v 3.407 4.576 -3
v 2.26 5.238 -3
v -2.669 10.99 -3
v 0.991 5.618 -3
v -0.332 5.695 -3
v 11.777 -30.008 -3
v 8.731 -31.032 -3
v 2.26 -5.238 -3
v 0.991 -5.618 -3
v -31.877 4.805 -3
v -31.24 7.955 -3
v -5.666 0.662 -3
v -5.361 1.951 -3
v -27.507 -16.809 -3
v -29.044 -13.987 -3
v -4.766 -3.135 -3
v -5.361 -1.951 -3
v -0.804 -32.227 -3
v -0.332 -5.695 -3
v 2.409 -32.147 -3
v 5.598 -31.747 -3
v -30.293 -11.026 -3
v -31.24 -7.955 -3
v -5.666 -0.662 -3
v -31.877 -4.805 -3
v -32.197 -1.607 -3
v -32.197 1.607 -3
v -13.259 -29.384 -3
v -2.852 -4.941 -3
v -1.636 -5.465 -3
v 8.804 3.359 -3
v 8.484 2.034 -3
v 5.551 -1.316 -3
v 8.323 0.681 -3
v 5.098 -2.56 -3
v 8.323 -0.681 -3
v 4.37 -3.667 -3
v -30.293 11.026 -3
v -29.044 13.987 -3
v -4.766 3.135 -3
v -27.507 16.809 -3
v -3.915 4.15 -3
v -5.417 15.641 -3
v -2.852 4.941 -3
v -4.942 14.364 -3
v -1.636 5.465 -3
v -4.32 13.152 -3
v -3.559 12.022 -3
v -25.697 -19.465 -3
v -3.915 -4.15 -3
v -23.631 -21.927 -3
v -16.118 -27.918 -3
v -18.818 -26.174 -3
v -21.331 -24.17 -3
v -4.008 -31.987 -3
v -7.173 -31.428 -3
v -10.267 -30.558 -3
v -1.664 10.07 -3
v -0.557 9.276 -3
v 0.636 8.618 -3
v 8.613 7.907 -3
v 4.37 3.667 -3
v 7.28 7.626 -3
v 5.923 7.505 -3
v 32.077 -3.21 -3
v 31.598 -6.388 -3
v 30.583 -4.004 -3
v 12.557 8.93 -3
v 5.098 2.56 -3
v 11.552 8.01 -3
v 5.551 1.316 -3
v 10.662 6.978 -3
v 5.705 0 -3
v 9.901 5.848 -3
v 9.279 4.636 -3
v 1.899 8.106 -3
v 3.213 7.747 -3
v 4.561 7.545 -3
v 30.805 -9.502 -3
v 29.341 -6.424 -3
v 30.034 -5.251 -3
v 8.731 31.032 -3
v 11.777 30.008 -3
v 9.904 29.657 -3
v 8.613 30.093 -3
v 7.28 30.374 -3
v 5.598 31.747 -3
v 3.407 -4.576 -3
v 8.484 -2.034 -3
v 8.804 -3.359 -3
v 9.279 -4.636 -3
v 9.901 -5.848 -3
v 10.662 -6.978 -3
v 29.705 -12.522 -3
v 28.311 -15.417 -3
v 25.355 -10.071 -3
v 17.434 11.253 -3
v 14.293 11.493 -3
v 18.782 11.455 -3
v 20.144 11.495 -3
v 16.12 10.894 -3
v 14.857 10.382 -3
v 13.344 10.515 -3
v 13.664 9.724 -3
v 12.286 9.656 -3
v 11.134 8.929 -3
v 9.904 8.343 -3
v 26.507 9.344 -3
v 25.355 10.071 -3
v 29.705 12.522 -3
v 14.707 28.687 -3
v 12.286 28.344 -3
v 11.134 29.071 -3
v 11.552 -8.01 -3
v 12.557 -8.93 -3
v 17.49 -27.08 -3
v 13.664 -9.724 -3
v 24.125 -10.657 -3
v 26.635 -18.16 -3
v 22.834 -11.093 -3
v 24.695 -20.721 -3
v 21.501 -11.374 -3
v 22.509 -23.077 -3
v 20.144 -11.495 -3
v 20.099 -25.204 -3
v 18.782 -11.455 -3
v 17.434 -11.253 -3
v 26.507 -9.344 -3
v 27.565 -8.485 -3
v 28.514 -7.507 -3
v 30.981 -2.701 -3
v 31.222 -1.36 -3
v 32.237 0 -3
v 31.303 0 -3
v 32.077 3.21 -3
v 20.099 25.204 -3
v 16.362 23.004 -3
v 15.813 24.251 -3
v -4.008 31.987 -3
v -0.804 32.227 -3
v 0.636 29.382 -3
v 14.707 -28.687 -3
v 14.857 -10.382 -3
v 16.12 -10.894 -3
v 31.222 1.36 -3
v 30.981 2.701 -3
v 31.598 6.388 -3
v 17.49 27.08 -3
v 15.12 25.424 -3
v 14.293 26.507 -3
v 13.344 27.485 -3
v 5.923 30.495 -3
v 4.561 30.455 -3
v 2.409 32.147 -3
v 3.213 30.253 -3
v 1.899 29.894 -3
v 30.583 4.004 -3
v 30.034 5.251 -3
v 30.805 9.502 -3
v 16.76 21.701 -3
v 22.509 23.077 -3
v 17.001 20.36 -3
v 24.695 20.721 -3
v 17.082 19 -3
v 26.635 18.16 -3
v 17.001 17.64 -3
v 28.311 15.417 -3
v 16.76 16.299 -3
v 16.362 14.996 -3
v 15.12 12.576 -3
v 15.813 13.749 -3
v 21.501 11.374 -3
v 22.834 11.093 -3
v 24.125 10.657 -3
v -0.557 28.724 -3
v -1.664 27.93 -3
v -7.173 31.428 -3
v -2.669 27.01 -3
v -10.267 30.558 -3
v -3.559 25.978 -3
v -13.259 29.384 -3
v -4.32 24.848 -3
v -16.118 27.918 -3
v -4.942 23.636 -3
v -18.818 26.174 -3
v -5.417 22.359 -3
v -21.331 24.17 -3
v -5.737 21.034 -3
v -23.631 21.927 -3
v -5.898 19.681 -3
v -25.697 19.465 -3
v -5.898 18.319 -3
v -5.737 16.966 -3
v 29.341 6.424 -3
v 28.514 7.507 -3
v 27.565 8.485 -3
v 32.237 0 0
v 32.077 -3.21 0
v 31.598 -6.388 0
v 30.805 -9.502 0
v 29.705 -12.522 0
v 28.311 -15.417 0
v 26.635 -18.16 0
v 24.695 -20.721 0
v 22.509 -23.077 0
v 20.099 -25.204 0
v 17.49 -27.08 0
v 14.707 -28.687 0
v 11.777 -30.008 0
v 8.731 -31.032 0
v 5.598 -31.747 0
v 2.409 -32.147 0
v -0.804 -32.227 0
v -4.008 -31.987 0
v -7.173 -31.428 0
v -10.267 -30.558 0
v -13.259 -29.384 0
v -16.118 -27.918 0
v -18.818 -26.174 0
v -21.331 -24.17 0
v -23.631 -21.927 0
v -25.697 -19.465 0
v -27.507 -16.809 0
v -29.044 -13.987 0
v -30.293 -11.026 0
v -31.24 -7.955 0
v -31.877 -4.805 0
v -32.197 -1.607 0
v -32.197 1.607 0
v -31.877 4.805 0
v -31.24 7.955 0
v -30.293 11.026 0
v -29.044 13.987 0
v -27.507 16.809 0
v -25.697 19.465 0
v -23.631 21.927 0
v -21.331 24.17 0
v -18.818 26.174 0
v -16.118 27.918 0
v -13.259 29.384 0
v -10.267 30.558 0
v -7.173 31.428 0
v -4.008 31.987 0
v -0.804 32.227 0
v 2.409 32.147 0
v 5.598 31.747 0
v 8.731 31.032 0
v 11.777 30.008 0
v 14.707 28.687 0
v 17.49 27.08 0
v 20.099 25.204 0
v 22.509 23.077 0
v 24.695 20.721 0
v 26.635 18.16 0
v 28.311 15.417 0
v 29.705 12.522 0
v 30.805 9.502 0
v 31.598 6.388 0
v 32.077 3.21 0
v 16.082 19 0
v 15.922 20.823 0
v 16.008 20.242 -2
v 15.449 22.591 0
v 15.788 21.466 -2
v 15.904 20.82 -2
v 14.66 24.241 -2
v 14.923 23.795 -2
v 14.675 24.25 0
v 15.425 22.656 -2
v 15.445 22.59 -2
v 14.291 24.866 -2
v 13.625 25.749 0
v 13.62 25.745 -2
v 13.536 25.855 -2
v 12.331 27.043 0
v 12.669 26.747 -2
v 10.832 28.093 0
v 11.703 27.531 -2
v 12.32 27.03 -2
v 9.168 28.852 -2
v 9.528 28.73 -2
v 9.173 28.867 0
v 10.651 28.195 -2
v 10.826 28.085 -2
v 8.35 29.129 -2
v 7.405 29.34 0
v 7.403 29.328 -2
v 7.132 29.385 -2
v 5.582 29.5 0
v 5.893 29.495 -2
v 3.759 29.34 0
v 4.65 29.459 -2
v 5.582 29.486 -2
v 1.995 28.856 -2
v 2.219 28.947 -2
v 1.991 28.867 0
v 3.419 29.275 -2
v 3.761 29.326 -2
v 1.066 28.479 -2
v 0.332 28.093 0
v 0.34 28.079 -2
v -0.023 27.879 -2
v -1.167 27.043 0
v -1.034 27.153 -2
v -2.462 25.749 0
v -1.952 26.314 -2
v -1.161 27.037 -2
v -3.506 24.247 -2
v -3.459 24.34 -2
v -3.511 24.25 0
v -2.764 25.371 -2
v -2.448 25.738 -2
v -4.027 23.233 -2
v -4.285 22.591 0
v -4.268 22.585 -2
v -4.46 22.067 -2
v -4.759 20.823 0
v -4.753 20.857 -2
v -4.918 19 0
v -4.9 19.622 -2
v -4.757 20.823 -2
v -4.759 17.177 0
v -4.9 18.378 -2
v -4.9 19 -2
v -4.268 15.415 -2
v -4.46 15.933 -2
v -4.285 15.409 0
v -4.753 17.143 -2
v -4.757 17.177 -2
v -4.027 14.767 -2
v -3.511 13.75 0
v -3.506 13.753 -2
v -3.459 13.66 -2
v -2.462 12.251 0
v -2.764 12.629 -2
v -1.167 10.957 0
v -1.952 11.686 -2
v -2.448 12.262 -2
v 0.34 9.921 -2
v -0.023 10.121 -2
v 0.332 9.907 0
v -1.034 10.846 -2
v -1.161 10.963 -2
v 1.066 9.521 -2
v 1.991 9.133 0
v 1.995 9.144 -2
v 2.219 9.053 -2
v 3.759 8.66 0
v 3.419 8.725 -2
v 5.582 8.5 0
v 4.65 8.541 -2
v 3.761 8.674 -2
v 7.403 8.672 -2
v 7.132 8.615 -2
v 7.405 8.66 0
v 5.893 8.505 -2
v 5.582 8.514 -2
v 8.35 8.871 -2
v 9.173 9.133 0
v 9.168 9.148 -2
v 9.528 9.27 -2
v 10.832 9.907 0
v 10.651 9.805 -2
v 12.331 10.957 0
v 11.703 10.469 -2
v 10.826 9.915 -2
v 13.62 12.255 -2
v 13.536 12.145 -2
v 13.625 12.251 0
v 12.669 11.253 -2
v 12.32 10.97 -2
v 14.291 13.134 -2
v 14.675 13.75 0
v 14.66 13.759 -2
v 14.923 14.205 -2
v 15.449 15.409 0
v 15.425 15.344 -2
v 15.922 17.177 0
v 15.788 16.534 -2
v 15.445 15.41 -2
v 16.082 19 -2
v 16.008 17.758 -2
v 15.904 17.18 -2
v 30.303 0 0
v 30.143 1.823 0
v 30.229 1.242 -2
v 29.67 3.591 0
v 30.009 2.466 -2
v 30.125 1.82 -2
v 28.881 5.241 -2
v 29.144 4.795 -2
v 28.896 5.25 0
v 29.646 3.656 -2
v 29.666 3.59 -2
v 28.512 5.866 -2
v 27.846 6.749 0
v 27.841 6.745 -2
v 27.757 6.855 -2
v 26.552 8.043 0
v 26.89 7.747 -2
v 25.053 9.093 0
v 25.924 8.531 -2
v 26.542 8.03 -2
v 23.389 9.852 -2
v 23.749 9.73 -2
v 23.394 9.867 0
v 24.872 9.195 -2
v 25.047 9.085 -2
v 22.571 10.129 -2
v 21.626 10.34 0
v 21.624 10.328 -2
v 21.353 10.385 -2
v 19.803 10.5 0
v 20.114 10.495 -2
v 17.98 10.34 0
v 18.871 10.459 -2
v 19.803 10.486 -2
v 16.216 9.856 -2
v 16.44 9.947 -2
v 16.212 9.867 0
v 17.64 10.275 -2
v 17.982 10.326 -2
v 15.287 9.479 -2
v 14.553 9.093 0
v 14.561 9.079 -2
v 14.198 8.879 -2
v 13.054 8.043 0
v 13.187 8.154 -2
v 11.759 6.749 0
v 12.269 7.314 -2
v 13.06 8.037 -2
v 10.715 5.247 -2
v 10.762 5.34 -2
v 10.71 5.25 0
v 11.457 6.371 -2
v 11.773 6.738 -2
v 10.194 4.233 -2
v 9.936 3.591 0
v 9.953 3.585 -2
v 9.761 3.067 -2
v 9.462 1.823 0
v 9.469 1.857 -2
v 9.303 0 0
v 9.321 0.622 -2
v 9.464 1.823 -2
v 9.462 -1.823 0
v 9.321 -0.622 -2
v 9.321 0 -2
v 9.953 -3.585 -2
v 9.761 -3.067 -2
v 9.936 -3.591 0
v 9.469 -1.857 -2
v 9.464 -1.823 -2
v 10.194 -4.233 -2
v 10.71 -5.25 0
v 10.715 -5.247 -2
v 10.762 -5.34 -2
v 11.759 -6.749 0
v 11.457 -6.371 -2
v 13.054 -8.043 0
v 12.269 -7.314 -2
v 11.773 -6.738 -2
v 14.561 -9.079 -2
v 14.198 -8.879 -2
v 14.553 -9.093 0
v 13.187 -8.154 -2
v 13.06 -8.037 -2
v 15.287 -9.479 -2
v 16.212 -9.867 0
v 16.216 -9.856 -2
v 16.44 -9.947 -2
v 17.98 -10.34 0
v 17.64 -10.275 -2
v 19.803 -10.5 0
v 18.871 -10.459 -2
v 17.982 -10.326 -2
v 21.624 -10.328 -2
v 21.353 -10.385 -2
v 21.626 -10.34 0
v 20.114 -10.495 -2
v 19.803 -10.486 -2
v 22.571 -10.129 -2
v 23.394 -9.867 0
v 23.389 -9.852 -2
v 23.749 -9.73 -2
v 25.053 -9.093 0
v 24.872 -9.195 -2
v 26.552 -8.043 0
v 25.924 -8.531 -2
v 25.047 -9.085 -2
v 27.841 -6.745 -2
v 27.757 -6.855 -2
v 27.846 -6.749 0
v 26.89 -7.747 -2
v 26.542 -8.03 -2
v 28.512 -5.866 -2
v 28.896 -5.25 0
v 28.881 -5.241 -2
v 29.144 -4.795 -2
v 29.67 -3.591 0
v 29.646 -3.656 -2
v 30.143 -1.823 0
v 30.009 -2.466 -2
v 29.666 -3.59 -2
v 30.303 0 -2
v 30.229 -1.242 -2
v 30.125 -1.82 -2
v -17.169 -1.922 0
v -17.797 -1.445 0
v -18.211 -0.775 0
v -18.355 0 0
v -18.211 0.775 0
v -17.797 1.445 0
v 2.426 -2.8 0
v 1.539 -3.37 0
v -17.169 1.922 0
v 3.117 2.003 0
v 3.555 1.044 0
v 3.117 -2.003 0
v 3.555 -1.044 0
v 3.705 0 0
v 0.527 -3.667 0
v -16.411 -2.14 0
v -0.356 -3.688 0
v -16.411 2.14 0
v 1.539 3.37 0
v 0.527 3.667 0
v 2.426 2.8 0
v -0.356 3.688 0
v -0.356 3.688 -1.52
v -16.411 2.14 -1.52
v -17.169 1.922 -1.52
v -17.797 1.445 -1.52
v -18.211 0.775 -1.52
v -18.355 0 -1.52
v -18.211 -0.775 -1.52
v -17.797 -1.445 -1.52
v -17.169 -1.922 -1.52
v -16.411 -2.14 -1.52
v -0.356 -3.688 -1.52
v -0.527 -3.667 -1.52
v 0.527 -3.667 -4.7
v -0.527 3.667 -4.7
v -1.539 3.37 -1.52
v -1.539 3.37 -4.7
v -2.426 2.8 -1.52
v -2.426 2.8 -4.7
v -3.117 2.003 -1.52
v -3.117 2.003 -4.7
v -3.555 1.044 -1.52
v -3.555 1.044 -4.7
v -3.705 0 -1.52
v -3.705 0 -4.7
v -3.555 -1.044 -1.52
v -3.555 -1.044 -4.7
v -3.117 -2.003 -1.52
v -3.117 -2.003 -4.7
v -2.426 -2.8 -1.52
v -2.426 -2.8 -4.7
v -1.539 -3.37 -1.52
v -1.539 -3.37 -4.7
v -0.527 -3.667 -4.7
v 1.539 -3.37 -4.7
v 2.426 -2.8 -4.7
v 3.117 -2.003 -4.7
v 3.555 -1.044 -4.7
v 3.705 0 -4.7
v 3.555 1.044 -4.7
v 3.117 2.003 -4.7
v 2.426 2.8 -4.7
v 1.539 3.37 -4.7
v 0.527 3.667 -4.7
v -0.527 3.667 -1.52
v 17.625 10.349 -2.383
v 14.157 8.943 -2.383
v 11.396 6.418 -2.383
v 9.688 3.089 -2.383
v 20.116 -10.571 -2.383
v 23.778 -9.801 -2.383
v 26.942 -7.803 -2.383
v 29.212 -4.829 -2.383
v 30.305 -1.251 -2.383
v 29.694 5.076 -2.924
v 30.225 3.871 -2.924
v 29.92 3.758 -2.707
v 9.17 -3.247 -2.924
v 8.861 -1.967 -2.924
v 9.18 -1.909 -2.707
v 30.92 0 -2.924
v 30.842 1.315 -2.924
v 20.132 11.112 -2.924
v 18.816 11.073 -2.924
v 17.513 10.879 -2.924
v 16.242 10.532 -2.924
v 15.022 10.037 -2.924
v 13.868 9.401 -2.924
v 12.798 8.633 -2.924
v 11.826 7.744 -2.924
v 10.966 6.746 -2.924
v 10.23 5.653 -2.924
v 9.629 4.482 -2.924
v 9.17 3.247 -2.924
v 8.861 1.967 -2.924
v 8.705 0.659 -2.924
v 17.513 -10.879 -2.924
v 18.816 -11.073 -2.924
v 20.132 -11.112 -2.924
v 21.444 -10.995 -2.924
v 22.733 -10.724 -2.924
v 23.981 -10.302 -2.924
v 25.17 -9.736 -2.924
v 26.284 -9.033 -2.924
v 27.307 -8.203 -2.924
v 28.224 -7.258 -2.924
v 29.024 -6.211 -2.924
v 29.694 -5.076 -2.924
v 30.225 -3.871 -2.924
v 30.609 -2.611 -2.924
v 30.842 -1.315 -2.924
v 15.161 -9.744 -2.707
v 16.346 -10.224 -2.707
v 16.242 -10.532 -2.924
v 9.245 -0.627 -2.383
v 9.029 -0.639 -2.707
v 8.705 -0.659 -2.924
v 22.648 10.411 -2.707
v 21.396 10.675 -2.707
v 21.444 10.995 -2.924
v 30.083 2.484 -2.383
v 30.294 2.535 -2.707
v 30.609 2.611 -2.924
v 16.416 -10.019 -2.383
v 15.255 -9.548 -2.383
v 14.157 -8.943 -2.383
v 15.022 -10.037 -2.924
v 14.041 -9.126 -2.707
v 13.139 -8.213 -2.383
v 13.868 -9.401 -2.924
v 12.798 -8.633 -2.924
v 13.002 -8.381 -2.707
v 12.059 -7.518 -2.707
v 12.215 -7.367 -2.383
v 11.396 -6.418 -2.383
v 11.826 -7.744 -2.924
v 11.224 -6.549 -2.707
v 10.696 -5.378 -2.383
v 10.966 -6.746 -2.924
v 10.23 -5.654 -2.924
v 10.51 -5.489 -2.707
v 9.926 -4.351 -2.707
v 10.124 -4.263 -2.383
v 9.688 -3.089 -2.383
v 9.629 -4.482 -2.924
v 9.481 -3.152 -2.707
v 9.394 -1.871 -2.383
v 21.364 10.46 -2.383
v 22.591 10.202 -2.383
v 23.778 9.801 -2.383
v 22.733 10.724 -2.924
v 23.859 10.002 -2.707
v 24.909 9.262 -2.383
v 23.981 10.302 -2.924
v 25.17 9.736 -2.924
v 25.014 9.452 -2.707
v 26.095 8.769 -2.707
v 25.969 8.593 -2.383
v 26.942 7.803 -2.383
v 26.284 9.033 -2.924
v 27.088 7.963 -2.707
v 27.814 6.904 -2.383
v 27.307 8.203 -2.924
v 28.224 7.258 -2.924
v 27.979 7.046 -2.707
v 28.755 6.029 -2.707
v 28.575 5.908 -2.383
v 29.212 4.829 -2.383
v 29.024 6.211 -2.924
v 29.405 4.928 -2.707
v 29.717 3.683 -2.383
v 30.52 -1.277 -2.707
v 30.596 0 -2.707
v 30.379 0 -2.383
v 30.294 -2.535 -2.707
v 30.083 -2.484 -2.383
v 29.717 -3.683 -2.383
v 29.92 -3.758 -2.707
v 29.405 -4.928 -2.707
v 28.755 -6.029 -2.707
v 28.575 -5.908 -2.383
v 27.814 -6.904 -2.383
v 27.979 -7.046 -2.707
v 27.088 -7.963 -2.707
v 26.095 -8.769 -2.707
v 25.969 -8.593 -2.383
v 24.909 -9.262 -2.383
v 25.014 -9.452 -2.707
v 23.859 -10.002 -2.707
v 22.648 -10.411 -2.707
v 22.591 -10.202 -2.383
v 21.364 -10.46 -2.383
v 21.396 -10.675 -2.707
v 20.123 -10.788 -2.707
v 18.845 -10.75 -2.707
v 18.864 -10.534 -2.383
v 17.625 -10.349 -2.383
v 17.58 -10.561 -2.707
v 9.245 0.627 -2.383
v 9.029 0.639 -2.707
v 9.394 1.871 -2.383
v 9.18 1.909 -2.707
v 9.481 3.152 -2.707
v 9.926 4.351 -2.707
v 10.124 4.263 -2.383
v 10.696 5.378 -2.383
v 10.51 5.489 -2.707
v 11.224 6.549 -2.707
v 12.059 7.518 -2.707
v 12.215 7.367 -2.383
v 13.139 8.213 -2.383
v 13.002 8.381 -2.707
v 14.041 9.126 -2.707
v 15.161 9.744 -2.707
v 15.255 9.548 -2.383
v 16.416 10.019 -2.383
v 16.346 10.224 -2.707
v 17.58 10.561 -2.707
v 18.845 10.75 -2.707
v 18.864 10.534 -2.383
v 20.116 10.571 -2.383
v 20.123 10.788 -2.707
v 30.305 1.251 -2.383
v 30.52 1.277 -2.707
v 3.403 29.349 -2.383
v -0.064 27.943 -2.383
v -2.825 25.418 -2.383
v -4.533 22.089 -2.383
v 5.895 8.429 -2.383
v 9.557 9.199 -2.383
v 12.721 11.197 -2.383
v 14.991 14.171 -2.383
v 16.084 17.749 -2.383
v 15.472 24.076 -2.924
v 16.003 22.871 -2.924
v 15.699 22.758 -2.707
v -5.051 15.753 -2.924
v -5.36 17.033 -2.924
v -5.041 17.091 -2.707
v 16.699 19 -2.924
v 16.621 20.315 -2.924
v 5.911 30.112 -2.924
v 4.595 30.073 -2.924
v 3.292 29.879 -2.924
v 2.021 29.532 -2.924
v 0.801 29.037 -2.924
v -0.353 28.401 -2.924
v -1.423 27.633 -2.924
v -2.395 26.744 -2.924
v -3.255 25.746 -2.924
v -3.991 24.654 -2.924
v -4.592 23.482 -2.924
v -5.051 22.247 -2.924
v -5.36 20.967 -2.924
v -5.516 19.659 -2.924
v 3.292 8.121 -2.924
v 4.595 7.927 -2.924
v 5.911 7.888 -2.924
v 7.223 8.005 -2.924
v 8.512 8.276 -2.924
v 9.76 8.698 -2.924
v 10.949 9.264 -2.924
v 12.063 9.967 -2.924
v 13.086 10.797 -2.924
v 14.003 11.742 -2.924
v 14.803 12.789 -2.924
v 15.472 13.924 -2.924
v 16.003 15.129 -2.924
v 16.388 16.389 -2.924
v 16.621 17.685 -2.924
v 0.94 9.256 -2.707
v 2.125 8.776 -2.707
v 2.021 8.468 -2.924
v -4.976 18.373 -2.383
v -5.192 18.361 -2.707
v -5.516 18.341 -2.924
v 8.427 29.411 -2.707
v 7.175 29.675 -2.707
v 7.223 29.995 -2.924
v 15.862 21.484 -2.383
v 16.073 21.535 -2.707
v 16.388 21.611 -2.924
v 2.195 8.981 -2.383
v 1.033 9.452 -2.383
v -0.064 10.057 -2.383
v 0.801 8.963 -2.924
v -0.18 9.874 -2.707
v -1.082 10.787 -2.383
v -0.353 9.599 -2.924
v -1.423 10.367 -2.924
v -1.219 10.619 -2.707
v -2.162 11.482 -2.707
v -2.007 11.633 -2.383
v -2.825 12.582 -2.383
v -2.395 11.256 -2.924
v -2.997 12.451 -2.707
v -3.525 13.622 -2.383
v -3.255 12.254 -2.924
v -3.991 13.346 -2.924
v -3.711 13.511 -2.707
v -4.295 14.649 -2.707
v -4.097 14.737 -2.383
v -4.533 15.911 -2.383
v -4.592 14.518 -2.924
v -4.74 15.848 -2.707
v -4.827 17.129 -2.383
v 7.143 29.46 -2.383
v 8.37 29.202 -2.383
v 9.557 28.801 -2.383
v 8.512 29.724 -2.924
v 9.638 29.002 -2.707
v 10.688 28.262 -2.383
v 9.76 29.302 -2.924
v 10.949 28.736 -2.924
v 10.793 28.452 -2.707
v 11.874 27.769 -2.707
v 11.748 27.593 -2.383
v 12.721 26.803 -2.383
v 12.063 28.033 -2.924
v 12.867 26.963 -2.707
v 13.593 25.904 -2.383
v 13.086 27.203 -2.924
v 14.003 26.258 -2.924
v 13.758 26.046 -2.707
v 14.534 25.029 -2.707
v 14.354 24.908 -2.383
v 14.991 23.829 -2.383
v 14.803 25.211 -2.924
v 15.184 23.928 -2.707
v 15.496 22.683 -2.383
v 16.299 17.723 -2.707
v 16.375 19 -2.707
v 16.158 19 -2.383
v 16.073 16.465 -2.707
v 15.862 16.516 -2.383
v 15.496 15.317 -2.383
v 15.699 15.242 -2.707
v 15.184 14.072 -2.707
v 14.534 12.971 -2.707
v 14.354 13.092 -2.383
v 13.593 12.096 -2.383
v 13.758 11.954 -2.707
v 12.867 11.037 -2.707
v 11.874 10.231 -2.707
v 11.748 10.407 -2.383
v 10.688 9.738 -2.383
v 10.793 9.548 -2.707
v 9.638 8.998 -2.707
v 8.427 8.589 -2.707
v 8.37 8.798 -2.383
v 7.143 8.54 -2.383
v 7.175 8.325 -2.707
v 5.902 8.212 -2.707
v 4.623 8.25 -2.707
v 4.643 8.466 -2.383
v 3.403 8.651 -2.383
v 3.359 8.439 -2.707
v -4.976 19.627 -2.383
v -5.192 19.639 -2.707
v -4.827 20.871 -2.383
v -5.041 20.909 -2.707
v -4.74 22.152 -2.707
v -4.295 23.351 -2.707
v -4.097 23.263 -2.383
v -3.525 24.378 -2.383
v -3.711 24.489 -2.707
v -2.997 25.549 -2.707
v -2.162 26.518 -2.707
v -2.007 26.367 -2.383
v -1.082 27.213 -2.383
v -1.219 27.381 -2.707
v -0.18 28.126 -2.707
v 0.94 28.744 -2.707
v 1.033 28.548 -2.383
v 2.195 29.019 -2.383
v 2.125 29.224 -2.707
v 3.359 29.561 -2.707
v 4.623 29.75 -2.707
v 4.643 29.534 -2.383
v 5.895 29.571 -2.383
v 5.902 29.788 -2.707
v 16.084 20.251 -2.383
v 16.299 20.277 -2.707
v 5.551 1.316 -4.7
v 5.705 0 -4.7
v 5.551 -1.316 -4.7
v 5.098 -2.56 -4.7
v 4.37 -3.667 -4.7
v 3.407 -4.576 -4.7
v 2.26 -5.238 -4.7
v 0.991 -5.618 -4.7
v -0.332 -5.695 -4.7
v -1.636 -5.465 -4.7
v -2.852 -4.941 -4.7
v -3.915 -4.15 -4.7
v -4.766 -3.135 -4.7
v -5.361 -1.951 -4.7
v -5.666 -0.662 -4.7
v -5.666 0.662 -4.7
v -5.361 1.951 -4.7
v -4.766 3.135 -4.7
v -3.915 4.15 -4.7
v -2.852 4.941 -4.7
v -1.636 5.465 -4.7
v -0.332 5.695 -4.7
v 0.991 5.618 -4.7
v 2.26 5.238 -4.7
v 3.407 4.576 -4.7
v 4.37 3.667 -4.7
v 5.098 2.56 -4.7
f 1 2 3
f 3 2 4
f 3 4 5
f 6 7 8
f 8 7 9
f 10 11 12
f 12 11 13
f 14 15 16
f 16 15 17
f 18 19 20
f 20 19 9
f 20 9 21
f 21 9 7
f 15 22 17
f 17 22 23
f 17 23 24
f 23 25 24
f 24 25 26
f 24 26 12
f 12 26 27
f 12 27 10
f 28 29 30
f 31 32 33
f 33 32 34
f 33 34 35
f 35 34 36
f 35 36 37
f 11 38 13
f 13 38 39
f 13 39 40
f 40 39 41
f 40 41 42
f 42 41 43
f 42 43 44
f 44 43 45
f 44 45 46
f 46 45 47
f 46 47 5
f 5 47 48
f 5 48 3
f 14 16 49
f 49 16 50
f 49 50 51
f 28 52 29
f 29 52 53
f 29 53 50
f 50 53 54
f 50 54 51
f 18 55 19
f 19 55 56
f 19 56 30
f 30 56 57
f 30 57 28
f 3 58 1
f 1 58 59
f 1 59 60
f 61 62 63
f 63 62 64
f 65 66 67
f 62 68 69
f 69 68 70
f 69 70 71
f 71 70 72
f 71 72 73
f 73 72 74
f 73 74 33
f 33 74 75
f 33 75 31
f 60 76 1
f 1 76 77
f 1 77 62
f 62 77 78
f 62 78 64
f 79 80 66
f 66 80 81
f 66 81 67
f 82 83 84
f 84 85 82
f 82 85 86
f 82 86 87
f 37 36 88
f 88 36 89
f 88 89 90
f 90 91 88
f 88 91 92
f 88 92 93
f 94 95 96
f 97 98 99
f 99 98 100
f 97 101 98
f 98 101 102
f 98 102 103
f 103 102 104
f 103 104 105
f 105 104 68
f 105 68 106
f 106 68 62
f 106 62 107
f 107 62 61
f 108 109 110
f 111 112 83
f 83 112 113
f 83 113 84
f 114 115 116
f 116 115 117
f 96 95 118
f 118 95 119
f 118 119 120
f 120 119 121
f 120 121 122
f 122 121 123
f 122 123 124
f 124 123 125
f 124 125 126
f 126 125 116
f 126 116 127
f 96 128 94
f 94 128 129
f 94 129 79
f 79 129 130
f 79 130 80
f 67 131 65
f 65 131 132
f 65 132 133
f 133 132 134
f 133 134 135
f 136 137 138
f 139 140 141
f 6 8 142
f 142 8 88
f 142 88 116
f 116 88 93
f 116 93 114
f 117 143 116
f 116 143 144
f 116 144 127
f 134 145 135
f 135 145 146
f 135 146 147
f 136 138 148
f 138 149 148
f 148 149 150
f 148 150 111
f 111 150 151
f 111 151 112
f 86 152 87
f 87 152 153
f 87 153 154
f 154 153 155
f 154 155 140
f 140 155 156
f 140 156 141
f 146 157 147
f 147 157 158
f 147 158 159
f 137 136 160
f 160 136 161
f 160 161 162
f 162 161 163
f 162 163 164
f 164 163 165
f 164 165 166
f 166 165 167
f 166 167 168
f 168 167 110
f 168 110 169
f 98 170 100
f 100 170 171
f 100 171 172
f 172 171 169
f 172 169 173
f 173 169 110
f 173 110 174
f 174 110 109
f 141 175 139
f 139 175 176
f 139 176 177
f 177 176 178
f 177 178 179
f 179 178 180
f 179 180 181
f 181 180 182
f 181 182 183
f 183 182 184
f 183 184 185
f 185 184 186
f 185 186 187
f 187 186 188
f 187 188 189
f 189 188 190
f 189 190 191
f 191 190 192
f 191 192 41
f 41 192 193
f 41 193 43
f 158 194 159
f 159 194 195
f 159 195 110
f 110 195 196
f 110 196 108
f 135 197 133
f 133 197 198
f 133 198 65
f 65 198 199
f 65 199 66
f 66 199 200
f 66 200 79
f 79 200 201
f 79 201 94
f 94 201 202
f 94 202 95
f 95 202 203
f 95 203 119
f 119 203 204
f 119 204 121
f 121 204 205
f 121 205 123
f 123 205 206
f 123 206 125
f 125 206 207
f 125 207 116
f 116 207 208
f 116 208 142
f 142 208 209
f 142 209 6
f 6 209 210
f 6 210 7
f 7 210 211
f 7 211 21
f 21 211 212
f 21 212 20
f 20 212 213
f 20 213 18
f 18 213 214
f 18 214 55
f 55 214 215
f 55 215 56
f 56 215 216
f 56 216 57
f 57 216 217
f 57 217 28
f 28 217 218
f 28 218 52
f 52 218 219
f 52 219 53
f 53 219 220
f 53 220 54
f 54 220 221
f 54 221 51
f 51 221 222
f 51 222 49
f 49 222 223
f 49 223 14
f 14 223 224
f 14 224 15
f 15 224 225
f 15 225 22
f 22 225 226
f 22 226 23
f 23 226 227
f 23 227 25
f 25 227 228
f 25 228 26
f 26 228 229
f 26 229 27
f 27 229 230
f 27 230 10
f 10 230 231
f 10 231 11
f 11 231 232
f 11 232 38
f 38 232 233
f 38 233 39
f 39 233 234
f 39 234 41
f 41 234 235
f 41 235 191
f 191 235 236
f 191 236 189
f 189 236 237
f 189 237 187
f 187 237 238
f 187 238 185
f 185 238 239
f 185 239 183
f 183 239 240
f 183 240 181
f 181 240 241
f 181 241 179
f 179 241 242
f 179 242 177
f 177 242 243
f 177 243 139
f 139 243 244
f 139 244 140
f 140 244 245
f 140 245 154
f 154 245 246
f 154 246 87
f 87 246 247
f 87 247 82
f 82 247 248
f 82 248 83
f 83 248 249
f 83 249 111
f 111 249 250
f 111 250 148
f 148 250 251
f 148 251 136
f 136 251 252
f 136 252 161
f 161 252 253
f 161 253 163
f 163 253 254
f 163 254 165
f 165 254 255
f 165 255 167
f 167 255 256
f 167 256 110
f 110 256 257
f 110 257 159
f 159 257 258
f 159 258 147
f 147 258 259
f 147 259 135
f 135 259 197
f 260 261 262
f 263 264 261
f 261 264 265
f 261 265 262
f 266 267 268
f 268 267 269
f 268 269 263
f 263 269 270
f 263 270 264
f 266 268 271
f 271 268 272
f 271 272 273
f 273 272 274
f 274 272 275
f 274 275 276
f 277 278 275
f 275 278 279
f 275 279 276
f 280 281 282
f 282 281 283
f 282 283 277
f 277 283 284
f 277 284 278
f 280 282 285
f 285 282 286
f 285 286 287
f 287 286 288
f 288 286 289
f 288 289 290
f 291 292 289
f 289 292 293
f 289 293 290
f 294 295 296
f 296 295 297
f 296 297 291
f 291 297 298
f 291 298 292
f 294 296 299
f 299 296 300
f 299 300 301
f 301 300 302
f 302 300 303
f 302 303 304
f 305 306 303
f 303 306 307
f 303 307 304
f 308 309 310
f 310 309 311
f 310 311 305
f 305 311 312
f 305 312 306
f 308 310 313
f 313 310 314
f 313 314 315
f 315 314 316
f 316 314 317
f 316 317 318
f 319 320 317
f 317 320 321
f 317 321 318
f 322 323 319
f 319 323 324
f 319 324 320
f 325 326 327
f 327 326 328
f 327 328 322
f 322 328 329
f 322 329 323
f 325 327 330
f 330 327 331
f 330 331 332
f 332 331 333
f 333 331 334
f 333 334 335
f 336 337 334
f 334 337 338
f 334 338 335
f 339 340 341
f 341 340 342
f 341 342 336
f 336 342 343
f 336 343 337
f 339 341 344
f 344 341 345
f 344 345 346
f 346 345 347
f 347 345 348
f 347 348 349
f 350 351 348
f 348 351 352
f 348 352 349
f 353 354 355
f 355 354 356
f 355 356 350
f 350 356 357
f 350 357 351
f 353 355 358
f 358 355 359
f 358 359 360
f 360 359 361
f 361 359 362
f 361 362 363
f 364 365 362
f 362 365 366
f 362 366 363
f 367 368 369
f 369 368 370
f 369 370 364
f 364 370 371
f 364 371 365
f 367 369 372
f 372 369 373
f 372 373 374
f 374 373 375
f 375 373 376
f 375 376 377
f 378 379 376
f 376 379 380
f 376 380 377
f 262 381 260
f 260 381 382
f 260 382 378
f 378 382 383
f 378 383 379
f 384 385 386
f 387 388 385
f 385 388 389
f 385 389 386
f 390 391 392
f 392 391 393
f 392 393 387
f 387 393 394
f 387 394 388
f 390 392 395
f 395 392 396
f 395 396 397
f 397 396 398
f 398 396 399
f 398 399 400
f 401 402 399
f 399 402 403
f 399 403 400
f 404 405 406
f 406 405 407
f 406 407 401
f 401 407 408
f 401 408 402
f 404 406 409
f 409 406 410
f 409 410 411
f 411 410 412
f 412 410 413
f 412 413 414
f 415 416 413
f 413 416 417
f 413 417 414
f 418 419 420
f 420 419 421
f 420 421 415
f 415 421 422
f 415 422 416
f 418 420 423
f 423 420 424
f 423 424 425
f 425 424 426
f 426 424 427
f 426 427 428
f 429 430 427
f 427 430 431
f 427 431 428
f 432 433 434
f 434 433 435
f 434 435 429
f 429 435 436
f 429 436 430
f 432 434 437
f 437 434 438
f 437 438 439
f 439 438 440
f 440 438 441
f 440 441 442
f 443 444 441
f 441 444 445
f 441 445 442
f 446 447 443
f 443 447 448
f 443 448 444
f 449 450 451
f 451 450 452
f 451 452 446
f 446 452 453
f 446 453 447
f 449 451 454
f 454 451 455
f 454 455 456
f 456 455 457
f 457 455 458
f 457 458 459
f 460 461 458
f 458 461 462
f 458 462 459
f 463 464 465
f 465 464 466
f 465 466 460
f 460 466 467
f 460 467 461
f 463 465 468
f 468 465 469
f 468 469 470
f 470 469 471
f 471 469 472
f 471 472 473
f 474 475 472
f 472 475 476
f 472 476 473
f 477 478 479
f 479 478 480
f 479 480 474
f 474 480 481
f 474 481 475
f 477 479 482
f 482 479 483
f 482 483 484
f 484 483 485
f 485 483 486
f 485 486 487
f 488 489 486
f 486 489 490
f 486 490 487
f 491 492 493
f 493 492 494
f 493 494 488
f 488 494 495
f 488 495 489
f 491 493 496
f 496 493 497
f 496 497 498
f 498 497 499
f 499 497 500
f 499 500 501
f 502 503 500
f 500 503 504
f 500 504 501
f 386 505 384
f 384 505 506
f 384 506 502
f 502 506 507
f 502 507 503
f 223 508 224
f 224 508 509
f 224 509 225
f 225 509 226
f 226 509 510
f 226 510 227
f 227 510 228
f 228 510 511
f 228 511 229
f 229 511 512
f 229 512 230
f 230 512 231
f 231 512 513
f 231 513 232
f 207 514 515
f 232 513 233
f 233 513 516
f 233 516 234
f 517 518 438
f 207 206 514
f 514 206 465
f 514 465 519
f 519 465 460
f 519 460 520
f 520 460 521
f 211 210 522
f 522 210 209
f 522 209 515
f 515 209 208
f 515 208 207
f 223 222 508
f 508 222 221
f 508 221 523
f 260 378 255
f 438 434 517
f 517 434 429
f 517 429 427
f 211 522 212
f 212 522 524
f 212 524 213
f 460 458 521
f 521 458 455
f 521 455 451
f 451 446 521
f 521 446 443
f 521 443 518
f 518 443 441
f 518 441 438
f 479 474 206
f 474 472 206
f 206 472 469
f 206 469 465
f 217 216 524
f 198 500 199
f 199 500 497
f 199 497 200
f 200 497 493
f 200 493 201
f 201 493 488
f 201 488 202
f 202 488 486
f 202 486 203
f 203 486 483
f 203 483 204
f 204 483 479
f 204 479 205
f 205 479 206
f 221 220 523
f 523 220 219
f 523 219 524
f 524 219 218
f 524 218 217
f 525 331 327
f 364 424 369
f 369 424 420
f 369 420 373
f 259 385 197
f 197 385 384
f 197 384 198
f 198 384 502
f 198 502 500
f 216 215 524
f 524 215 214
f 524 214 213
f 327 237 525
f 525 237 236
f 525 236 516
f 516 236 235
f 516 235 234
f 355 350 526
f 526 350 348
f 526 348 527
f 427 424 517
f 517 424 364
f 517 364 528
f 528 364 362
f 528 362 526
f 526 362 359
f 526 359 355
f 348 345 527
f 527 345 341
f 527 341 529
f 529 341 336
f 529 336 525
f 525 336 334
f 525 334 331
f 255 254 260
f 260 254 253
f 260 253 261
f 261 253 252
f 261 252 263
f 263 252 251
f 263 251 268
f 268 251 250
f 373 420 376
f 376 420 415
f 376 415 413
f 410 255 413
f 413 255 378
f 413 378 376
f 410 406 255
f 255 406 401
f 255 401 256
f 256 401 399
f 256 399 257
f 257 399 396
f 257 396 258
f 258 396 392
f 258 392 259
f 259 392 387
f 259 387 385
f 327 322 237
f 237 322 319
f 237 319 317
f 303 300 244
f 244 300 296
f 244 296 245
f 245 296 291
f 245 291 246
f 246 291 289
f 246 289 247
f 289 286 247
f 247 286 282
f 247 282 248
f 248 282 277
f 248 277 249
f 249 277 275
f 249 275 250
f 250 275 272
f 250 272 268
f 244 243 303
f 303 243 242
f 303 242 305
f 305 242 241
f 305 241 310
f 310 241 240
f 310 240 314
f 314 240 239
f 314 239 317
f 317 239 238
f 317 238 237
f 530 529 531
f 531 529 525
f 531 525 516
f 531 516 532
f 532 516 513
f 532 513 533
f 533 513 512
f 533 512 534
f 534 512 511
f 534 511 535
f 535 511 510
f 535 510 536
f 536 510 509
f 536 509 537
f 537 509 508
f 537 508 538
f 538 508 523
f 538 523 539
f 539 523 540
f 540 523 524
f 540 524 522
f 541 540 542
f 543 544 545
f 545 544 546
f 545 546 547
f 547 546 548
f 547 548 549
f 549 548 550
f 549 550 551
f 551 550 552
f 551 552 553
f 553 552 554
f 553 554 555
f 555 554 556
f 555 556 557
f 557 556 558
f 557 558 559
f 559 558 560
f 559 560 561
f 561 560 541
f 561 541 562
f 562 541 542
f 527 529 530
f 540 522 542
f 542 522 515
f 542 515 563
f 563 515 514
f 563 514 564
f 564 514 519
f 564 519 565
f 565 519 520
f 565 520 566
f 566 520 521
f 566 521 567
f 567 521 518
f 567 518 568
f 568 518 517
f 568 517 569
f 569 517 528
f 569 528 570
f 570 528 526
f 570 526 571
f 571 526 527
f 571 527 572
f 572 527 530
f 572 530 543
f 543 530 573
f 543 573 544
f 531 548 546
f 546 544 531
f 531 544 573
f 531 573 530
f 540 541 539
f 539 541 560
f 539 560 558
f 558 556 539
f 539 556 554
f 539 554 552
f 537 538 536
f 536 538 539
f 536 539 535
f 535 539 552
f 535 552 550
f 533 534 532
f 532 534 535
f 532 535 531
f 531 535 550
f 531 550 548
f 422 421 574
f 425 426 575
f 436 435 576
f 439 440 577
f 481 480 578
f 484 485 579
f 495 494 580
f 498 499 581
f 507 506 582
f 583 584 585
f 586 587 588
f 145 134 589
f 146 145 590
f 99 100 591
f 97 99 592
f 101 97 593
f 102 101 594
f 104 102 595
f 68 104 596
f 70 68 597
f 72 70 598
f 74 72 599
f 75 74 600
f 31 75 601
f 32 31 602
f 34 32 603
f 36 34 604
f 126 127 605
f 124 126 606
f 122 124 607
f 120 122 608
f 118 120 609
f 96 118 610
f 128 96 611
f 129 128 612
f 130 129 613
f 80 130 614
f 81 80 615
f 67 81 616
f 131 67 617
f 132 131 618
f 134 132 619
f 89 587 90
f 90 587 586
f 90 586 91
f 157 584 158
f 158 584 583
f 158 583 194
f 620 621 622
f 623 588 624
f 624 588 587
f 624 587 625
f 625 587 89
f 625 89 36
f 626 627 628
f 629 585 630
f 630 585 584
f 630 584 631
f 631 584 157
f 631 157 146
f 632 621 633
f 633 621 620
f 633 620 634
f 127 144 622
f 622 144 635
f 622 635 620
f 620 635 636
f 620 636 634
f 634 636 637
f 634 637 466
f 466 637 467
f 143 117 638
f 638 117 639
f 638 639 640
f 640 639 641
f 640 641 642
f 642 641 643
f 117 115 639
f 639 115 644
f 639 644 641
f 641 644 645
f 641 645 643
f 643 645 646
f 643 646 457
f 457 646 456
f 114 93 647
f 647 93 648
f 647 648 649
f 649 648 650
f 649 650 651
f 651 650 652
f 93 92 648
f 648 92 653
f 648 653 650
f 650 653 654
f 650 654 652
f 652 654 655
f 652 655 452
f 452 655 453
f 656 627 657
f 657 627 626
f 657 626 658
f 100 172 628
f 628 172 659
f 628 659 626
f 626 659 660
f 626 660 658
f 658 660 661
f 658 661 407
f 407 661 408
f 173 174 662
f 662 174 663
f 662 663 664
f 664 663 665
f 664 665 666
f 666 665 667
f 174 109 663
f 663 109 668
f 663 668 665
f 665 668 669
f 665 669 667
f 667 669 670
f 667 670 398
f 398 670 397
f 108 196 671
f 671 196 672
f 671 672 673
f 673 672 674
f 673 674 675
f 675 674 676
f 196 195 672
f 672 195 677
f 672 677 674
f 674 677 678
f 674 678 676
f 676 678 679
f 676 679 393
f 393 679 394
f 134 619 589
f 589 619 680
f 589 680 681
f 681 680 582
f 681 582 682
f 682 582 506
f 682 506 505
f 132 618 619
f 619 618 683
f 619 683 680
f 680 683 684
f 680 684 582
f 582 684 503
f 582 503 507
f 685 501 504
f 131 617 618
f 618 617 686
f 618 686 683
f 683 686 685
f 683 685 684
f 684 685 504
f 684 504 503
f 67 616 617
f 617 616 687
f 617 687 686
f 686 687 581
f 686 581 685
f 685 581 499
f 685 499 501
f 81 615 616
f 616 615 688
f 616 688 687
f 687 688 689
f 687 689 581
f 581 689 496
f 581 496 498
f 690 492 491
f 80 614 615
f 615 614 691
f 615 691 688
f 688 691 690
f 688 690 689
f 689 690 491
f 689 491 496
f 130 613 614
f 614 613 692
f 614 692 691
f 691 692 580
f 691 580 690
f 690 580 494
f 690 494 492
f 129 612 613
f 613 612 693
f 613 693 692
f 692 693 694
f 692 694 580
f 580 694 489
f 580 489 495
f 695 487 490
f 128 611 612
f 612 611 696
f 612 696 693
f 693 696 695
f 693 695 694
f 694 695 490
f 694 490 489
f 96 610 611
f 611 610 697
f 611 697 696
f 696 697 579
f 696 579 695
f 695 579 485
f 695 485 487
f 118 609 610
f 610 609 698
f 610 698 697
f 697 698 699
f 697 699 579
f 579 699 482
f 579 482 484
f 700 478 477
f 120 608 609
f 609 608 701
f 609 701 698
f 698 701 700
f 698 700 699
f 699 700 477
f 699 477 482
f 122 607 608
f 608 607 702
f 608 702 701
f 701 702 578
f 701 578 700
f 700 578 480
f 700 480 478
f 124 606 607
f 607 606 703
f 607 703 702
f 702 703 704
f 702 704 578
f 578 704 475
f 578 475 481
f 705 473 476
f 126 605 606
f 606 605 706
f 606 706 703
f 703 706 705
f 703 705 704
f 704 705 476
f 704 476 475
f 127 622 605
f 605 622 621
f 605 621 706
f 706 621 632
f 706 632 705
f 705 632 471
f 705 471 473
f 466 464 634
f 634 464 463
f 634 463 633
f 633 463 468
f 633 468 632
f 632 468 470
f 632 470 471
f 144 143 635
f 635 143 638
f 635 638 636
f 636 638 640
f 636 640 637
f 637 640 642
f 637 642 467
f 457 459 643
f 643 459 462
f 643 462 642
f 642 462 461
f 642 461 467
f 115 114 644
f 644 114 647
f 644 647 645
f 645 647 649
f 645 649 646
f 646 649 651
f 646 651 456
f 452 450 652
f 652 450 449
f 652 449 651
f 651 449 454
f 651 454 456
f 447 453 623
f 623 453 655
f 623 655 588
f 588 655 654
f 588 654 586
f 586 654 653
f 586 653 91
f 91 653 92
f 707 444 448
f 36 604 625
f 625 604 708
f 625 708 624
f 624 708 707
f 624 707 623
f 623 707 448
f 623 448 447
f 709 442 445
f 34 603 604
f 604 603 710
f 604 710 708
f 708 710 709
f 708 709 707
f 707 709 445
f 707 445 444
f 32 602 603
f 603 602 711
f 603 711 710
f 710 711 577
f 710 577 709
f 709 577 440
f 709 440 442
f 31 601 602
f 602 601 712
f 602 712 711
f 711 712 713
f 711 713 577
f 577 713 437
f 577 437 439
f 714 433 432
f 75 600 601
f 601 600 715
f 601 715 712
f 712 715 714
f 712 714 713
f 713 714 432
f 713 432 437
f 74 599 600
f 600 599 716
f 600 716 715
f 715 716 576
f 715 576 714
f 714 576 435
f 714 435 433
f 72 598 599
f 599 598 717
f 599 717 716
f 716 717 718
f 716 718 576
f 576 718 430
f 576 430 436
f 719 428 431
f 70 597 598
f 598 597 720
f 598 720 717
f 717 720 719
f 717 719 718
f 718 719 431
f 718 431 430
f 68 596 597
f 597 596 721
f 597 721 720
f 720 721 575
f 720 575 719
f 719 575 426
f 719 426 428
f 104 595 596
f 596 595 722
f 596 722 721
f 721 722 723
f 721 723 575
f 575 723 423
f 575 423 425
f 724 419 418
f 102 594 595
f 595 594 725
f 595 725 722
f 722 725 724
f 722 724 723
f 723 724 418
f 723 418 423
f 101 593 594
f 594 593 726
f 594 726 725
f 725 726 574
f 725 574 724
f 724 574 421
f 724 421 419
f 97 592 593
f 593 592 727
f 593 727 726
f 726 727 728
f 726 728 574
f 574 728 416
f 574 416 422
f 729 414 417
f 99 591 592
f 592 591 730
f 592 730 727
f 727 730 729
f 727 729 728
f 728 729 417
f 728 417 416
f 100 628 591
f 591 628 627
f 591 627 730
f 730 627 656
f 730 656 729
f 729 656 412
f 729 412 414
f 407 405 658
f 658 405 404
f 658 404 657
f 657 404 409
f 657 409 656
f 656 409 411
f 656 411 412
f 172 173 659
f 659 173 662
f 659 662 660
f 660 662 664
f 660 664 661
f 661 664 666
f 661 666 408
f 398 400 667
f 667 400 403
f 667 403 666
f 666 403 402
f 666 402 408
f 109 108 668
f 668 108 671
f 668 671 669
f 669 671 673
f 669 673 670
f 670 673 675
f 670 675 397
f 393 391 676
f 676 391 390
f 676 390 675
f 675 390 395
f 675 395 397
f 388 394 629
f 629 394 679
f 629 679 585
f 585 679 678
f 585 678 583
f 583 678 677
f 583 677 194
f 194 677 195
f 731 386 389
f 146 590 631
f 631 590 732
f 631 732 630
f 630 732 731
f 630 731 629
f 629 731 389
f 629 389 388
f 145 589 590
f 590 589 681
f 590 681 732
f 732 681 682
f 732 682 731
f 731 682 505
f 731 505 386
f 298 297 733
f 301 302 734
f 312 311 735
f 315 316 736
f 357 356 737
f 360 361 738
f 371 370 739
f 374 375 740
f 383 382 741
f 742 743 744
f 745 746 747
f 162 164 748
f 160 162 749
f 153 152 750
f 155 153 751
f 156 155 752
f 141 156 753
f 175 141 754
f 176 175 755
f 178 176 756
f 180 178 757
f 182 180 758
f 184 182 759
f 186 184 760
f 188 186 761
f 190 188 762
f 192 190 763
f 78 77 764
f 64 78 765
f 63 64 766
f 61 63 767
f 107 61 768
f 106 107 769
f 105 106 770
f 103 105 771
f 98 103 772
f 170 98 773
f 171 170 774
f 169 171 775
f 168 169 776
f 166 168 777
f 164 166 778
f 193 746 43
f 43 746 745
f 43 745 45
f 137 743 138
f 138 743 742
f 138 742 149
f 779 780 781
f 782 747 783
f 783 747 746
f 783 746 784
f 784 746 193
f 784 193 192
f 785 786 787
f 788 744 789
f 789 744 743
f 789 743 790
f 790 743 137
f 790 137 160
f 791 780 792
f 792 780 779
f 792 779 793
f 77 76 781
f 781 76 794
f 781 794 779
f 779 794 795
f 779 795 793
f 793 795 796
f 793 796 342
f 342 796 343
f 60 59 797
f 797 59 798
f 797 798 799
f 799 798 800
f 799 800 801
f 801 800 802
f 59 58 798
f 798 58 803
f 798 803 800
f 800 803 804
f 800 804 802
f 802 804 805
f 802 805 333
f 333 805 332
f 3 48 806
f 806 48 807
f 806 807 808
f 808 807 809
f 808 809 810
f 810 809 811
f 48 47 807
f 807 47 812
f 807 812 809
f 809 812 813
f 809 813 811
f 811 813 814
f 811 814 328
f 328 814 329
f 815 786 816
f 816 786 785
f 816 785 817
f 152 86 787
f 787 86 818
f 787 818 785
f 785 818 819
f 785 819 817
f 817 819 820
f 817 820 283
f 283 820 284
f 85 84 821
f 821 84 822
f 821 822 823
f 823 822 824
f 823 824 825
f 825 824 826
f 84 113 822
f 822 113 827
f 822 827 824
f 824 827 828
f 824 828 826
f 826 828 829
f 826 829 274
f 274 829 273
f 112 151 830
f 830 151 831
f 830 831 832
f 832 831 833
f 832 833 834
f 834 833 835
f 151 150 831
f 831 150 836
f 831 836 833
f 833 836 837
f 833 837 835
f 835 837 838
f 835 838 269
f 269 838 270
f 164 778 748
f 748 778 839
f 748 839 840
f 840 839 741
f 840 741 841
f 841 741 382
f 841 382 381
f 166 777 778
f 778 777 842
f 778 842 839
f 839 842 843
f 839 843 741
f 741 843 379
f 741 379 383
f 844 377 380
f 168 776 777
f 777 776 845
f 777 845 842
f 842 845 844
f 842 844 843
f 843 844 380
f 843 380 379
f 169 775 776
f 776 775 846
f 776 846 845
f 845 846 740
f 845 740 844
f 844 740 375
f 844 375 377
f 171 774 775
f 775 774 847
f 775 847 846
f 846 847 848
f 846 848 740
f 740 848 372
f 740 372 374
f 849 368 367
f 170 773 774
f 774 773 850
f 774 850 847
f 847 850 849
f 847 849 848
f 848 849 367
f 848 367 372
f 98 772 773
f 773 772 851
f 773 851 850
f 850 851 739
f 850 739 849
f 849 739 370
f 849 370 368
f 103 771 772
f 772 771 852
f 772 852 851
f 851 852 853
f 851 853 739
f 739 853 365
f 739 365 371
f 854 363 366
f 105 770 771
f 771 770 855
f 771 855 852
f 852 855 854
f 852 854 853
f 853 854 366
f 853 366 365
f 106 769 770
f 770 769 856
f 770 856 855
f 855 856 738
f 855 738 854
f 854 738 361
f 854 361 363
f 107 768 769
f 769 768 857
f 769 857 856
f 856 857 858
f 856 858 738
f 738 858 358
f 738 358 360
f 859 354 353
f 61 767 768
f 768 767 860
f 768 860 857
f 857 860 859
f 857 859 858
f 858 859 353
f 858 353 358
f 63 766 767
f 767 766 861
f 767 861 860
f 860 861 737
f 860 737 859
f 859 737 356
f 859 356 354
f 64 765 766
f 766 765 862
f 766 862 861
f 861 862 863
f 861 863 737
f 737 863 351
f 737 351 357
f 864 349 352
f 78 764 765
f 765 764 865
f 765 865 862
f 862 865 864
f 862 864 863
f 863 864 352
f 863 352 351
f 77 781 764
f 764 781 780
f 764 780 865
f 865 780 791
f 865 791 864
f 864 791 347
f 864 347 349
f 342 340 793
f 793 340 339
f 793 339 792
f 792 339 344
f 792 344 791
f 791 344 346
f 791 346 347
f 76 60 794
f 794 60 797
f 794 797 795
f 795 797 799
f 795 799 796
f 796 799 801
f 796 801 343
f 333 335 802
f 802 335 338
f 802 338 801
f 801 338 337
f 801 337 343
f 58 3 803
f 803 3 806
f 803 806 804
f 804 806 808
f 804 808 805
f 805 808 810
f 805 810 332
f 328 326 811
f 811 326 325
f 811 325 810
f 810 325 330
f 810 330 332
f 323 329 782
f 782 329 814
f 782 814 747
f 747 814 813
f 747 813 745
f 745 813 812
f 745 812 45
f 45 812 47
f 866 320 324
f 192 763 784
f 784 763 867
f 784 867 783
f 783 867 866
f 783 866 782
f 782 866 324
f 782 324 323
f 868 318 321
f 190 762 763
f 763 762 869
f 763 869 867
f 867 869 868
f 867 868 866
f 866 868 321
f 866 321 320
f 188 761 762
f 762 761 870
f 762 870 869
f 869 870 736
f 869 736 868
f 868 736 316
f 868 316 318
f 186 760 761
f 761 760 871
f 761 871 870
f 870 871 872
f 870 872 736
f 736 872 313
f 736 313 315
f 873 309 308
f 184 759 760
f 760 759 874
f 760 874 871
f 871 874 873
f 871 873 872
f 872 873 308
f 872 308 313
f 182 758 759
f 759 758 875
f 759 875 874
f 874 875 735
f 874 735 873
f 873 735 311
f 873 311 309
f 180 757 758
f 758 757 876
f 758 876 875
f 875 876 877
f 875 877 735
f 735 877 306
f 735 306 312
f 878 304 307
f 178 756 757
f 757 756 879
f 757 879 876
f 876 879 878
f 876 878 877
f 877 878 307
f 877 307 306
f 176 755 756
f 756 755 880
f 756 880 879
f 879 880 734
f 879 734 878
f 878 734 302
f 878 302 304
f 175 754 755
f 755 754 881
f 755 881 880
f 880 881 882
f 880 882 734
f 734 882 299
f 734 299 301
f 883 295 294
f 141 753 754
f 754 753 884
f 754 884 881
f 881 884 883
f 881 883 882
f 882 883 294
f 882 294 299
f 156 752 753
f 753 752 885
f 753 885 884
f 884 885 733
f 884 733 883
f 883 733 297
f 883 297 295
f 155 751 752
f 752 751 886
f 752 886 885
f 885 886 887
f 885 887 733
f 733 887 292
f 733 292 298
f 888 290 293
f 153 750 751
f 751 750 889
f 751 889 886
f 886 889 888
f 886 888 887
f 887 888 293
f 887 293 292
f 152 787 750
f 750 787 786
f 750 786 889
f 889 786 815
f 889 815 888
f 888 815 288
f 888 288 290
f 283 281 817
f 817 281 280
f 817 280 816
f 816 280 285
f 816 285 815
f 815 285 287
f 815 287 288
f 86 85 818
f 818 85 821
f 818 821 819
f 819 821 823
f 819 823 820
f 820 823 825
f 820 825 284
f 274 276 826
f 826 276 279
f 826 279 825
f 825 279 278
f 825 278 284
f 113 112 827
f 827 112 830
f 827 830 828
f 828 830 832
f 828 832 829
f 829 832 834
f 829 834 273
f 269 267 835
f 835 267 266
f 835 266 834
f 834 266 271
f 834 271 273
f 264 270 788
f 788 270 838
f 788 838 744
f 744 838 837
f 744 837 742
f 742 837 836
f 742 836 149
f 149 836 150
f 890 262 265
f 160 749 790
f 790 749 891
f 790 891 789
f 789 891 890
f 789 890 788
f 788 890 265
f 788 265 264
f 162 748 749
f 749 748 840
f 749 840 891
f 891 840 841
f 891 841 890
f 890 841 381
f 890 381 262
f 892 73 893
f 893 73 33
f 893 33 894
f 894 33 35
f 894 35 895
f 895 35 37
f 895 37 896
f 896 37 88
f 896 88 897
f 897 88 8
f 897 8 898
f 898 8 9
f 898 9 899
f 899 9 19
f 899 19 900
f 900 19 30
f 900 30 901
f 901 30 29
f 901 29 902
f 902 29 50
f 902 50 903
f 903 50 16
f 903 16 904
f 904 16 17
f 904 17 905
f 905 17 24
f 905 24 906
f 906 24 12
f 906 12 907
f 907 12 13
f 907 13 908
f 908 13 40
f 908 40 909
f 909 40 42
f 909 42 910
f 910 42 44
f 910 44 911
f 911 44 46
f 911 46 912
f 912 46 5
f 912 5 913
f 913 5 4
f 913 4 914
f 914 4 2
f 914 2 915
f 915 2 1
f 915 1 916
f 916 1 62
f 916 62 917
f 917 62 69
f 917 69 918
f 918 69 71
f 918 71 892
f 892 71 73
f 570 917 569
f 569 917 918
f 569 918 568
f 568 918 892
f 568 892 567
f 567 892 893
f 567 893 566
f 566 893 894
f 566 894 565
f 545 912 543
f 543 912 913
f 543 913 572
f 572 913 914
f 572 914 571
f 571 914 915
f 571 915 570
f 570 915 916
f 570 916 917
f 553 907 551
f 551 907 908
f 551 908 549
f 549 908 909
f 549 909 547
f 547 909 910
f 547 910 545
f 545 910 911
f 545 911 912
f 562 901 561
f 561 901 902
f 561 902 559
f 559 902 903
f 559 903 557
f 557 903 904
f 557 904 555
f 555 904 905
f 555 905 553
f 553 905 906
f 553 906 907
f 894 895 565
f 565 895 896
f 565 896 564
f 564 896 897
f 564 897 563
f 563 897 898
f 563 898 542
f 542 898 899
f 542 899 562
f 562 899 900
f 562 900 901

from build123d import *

# Parameters (mm, degrees)
SKETCH_1_R        = 32.236701024
SKETCH_1_R_2      = 10.5
EXTRUDE_1_DEPTH   = 1.52
SKETCH_2_R        = 32.236701024
SKETCH_2_R_2      = 10.5
SKETCH_2_R_3      = 3.705
EXTRUDE_2_DEPTH   = 1.48
FILLET_1_R        = 1
SKETCH_3_R        = 5.705
SKETCH_3_R_2      = 3.705
EXTRUDE_1_2_DEPTH = 1.7


with BuildPart() as part:
    # 草图1 → Extrude 1 (new body)
    with BuildSketch(Plane.XY):
        Circle(SKETCH_1_R)
        with Locations((5.58185679, 19)):
            Circle(SKETCH_1_R_2, mode=Mode.SUBTRACT)
        with Locations((19.802957487, 0)):
            Circle(SKETCH_1_R_2, mode=Mode.SUBTRACT)
        with BuildLine():
            Line((-0.355524529, 3.687902833), (-16.411309781, 2.140078567))
            ThreePointArc((-16.411309781, 2.140078567), (-18.355, 0), (-16.411309781, -2.140078567))
            Line((-16.411309781, -2.140078567), (-0.355524529, -3.687902833))
            ThreePointArc((-0.355524529, -3.687902833), (3.705, 0), (-0.355524529, 3.687902833))
        make_face(mode=Mode.SUBTRACT)
    extrude(amount=-EXTRUDE_1_DEPTH)

    # 草图2 → 凸台-拉伸2 (add)
    with BuildSketch(Plane(origin=(0, 0, -1.52), x_dir=(-1, 0, 0), z_dir=(0, 0, -1))):
        Circle(SKETCH_2_R)
        with Locations((-5.58185679, 19)):
            Circle(SKETCH_2_R_2, mode=Mode.SUBTRACT)
        with Locations((-19.802957487, 0)):
            Circle(SKETCH_2_R_2, mode=Mode.SUBTRACT)
        Circle(SKETCH_2_R_3, mode=Mode.SUBTRACT)
    extrude(amount=EXTRUDE_2_DEPTH)

    # 圆角1
    fillet_1_edges = [part.edges().sort_by_distance(p)[0] for p in [
        (30.302957487, 0, -3),
        (16.08185679, 19, -3),
    ]]
    fillet(fillet_1_edges, radius=FILLET_1_R)

    # 草图3 → Extrude 1 2 (add)
    with BuildSketch(Plane(origin=(0, 0, -3), x_dir=(-1, 0, 0), z_dir=(0, 0, -1))):
        Circle(SKETCH_3_R)
        Circle(SKETCH_3_R_2, mode=Mode.SUBTRACT)
    extrude(amount=EXTRUDE_1_2_DEPTH)


solid = part.part
